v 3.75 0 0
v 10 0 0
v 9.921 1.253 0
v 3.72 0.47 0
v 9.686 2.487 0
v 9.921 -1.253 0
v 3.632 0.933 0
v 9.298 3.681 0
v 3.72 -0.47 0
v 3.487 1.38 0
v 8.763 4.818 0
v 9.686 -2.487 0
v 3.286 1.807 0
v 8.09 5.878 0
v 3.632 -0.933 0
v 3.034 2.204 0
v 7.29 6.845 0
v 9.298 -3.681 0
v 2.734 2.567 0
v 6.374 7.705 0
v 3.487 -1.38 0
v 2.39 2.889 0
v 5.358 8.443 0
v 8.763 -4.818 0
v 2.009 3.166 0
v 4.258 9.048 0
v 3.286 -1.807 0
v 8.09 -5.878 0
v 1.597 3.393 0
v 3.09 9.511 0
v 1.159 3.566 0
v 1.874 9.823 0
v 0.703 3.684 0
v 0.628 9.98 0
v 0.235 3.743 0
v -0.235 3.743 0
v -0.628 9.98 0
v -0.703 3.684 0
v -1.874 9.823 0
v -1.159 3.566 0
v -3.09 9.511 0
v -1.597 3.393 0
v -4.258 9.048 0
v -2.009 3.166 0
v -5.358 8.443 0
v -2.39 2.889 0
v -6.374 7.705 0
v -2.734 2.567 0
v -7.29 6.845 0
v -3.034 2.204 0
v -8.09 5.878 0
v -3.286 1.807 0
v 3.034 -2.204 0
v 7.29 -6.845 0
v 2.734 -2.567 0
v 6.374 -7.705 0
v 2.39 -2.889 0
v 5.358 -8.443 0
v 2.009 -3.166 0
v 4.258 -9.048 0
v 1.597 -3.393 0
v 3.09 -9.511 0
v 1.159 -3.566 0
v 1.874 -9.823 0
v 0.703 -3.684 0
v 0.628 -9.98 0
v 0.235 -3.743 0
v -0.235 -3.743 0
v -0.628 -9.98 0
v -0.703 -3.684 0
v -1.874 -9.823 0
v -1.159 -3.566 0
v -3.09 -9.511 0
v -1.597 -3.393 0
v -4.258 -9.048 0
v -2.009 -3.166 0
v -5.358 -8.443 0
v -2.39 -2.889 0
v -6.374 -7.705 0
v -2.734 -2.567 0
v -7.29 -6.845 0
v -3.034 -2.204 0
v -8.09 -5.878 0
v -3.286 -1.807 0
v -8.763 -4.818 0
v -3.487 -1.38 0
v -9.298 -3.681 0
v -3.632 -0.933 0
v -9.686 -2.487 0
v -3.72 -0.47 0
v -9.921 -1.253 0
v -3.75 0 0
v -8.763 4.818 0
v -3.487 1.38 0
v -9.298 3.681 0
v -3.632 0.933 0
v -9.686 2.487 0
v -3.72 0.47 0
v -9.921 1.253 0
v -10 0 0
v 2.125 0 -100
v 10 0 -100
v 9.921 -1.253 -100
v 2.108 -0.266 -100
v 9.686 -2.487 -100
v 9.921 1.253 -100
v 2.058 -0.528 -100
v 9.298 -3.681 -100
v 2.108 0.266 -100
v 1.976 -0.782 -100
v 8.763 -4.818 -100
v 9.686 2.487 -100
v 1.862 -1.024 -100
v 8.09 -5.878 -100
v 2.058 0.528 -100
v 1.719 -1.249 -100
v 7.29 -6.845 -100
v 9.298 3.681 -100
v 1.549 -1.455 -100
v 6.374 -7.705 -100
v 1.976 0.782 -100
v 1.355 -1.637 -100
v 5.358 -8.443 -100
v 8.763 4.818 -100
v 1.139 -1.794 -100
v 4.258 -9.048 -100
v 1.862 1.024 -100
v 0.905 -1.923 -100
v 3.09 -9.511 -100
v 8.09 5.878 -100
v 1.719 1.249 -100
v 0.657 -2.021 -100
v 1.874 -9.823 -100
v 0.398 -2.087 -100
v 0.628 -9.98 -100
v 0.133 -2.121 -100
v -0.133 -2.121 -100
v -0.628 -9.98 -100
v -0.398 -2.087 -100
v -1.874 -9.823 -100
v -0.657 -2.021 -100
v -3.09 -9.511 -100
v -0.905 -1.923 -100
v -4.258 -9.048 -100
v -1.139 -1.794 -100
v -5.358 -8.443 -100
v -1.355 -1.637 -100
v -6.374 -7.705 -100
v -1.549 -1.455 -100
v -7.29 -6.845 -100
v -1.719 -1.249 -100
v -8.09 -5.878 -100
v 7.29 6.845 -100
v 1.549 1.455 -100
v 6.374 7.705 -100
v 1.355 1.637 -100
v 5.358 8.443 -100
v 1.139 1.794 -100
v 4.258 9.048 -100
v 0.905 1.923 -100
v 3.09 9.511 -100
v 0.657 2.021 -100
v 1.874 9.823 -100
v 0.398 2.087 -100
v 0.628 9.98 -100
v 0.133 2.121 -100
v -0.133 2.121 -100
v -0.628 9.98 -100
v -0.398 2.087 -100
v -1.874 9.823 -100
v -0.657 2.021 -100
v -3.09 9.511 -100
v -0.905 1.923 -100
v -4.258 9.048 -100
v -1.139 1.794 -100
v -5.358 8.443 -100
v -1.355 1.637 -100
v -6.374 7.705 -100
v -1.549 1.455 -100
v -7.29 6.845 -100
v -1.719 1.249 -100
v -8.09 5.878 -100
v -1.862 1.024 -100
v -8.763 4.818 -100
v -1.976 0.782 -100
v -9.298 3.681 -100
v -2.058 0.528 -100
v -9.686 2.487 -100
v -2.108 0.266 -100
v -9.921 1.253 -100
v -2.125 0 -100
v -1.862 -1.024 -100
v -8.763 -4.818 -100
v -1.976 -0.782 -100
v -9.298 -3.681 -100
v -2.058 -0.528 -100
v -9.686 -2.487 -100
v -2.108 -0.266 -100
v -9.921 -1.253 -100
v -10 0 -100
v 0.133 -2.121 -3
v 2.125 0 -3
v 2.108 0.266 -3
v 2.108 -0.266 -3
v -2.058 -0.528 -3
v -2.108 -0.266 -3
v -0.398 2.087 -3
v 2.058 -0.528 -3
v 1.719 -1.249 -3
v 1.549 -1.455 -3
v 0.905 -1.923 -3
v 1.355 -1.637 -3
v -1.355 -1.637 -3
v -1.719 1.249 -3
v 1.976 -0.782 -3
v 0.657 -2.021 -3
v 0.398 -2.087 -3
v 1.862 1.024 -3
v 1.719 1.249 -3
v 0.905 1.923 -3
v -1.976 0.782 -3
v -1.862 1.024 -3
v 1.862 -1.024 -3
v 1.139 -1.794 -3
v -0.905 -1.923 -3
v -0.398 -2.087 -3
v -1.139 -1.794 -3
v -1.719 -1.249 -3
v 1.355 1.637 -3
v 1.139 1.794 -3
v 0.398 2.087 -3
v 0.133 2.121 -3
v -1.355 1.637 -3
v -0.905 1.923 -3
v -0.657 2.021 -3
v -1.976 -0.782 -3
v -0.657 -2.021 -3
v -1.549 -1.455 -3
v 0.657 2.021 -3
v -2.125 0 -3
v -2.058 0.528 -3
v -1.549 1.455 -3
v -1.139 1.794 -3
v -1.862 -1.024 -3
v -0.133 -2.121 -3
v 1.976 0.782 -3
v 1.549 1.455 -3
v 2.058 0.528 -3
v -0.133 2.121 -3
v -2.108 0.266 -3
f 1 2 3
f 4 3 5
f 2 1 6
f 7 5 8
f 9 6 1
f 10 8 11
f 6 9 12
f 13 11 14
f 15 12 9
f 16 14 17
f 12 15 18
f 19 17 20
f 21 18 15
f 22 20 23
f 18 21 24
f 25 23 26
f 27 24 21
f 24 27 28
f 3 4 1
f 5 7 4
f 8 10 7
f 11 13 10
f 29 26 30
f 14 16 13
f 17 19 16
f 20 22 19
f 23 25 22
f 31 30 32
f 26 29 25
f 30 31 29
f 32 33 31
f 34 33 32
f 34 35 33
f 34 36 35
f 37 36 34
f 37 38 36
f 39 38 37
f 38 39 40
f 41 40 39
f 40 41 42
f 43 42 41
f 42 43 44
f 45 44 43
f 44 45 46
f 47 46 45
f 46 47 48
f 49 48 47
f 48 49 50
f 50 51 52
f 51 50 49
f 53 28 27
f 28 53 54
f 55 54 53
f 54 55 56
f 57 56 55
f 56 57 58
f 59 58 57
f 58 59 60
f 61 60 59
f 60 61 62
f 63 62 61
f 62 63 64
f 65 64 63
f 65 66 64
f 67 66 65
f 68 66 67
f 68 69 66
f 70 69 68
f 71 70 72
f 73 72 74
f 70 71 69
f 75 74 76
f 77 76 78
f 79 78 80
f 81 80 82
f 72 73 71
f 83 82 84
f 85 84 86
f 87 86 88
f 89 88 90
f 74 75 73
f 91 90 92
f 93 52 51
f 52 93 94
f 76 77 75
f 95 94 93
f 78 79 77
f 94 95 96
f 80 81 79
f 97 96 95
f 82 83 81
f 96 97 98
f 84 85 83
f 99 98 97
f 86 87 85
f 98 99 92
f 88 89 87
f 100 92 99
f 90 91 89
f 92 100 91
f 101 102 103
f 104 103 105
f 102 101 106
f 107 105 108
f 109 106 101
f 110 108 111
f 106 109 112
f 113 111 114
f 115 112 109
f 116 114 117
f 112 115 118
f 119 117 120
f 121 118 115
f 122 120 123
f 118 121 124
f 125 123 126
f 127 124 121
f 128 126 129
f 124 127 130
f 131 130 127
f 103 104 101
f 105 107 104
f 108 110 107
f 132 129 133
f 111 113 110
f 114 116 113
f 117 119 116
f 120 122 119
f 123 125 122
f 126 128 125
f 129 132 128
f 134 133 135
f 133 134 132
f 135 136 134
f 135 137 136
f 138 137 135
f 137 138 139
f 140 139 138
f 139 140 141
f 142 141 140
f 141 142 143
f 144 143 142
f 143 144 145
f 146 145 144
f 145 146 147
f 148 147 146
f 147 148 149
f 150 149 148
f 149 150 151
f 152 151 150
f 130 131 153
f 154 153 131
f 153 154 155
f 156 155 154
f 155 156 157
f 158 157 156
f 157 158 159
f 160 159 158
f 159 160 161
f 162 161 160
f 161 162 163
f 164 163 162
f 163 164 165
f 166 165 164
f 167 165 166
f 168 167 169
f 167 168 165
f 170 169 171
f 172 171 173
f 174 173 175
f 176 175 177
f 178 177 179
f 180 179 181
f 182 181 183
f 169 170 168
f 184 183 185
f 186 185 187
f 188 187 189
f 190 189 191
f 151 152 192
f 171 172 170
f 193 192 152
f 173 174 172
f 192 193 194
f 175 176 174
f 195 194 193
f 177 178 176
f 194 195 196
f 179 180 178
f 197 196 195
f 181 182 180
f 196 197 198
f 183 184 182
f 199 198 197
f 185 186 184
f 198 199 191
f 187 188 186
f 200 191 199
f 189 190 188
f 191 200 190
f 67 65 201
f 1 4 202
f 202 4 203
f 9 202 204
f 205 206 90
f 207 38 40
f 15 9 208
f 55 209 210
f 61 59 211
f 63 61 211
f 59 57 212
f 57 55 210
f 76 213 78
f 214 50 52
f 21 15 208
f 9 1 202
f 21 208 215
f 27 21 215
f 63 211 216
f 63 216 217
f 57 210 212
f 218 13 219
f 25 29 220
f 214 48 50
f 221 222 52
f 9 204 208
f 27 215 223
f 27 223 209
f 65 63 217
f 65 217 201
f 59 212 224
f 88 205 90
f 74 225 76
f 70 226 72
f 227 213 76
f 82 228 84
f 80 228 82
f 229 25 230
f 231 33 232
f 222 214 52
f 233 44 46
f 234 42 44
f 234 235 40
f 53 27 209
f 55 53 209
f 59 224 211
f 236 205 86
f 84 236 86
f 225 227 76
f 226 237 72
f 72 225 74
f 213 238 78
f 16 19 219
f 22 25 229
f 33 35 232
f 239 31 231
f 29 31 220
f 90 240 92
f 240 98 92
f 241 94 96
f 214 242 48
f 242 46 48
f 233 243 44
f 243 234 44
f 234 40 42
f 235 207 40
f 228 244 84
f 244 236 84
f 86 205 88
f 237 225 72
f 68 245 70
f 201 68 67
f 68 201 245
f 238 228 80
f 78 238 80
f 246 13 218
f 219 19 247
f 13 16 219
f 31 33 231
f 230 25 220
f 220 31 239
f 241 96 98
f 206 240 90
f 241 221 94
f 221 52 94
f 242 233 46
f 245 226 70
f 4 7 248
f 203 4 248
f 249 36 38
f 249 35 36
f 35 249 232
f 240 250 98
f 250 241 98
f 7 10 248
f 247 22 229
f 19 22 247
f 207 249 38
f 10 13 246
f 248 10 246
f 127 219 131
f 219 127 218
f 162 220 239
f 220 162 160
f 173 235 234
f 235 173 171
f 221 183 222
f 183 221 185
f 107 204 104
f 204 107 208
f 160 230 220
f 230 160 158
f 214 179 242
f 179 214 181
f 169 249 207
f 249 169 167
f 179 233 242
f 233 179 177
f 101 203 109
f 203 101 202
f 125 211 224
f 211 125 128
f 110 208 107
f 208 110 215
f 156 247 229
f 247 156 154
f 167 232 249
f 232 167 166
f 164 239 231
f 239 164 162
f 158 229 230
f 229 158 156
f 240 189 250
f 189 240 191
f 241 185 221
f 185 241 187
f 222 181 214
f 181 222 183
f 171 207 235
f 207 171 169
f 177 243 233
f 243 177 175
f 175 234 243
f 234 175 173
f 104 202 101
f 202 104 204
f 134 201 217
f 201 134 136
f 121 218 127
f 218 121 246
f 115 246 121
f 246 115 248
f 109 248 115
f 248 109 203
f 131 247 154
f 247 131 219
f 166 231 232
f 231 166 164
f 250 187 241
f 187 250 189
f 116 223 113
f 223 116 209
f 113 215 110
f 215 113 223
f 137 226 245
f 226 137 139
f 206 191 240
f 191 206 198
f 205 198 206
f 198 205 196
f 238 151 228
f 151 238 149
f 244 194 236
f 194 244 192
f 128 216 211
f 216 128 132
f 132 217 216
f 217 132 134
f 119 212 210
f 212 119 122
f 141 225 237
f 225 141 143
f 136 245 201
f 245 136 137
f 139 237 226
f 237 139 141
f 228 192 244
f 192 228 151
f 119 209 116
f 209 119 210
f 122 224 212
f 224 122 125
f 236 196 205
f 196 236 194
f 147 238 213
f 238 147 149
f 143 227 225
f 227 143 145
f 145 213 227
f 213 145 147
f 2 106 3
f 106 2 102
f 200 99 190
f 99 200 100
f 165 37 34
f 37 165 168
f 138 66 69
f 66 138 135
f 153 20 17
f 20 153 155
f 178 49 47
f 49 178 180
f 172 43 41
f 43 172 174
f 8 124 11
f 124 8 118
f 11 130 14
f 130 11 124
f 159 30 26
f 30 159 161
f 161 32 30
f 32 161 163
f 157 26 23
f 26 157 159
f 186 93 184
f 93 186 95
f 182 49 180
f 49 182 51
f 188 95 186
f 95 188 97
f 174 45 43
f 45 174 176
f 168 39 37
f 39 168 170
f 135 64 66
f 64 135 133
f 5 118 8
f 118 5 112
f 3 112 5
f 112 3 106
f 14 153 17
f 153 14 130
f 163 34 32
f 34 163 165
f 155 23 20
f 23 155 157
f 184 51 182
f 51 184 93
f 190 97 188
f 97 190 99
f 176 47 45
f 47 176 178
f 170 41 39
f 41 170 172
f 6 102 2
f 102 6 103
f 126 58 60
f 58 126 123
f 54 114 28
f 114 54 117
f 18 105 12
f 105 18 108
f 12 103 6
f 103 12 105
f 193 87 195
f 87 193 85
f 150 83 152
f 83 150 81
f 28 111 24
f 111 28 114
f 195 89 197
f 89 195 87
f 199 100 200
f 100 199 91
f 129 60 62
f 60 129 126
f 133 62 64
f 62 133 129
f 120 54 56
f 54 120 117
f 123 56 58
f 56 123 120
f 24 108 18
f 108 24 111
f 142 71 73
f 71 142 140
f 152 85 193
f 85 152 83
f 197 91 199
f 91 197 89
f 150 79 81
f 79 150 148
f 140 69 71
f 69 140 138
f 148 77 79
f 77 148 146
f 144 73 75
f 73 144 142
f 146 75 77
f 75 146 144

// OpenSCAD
$fn = 50;


difference() {
	union() {
		translate(v = [0, 0, -100.0000000000]) {
			cylinder(h = 100, r = 10.0000000000);
		}
		cylinder(h = 0, r = 16.0000000000);
	}
	union() {
		translate(v = [0, 0, 0]) {
			rotate(a = [0, 0, 0]) {
				difference() {
					union() {
						#translate(v = [0, 0, -100.0000000000]) {
							cylinder(h = 100, r = 2.0000000000);
						}
						#translate(v = [0, 0, -3]) {
							cylinder(h = 3, r1 = 2.1250000000, r2 = 3.7500000000);
						}
						#translate(v = [0, 0, -100.0000000000]) {
							cylinder(h = 100, r = 2.1250000000);
						}
						#translate(v = [0, 0, -100.0000000000]) {
							cylinder(h = 100, r = 2.0000000000);
						}
					}
					union();
				}
			}
		}
	}
}
